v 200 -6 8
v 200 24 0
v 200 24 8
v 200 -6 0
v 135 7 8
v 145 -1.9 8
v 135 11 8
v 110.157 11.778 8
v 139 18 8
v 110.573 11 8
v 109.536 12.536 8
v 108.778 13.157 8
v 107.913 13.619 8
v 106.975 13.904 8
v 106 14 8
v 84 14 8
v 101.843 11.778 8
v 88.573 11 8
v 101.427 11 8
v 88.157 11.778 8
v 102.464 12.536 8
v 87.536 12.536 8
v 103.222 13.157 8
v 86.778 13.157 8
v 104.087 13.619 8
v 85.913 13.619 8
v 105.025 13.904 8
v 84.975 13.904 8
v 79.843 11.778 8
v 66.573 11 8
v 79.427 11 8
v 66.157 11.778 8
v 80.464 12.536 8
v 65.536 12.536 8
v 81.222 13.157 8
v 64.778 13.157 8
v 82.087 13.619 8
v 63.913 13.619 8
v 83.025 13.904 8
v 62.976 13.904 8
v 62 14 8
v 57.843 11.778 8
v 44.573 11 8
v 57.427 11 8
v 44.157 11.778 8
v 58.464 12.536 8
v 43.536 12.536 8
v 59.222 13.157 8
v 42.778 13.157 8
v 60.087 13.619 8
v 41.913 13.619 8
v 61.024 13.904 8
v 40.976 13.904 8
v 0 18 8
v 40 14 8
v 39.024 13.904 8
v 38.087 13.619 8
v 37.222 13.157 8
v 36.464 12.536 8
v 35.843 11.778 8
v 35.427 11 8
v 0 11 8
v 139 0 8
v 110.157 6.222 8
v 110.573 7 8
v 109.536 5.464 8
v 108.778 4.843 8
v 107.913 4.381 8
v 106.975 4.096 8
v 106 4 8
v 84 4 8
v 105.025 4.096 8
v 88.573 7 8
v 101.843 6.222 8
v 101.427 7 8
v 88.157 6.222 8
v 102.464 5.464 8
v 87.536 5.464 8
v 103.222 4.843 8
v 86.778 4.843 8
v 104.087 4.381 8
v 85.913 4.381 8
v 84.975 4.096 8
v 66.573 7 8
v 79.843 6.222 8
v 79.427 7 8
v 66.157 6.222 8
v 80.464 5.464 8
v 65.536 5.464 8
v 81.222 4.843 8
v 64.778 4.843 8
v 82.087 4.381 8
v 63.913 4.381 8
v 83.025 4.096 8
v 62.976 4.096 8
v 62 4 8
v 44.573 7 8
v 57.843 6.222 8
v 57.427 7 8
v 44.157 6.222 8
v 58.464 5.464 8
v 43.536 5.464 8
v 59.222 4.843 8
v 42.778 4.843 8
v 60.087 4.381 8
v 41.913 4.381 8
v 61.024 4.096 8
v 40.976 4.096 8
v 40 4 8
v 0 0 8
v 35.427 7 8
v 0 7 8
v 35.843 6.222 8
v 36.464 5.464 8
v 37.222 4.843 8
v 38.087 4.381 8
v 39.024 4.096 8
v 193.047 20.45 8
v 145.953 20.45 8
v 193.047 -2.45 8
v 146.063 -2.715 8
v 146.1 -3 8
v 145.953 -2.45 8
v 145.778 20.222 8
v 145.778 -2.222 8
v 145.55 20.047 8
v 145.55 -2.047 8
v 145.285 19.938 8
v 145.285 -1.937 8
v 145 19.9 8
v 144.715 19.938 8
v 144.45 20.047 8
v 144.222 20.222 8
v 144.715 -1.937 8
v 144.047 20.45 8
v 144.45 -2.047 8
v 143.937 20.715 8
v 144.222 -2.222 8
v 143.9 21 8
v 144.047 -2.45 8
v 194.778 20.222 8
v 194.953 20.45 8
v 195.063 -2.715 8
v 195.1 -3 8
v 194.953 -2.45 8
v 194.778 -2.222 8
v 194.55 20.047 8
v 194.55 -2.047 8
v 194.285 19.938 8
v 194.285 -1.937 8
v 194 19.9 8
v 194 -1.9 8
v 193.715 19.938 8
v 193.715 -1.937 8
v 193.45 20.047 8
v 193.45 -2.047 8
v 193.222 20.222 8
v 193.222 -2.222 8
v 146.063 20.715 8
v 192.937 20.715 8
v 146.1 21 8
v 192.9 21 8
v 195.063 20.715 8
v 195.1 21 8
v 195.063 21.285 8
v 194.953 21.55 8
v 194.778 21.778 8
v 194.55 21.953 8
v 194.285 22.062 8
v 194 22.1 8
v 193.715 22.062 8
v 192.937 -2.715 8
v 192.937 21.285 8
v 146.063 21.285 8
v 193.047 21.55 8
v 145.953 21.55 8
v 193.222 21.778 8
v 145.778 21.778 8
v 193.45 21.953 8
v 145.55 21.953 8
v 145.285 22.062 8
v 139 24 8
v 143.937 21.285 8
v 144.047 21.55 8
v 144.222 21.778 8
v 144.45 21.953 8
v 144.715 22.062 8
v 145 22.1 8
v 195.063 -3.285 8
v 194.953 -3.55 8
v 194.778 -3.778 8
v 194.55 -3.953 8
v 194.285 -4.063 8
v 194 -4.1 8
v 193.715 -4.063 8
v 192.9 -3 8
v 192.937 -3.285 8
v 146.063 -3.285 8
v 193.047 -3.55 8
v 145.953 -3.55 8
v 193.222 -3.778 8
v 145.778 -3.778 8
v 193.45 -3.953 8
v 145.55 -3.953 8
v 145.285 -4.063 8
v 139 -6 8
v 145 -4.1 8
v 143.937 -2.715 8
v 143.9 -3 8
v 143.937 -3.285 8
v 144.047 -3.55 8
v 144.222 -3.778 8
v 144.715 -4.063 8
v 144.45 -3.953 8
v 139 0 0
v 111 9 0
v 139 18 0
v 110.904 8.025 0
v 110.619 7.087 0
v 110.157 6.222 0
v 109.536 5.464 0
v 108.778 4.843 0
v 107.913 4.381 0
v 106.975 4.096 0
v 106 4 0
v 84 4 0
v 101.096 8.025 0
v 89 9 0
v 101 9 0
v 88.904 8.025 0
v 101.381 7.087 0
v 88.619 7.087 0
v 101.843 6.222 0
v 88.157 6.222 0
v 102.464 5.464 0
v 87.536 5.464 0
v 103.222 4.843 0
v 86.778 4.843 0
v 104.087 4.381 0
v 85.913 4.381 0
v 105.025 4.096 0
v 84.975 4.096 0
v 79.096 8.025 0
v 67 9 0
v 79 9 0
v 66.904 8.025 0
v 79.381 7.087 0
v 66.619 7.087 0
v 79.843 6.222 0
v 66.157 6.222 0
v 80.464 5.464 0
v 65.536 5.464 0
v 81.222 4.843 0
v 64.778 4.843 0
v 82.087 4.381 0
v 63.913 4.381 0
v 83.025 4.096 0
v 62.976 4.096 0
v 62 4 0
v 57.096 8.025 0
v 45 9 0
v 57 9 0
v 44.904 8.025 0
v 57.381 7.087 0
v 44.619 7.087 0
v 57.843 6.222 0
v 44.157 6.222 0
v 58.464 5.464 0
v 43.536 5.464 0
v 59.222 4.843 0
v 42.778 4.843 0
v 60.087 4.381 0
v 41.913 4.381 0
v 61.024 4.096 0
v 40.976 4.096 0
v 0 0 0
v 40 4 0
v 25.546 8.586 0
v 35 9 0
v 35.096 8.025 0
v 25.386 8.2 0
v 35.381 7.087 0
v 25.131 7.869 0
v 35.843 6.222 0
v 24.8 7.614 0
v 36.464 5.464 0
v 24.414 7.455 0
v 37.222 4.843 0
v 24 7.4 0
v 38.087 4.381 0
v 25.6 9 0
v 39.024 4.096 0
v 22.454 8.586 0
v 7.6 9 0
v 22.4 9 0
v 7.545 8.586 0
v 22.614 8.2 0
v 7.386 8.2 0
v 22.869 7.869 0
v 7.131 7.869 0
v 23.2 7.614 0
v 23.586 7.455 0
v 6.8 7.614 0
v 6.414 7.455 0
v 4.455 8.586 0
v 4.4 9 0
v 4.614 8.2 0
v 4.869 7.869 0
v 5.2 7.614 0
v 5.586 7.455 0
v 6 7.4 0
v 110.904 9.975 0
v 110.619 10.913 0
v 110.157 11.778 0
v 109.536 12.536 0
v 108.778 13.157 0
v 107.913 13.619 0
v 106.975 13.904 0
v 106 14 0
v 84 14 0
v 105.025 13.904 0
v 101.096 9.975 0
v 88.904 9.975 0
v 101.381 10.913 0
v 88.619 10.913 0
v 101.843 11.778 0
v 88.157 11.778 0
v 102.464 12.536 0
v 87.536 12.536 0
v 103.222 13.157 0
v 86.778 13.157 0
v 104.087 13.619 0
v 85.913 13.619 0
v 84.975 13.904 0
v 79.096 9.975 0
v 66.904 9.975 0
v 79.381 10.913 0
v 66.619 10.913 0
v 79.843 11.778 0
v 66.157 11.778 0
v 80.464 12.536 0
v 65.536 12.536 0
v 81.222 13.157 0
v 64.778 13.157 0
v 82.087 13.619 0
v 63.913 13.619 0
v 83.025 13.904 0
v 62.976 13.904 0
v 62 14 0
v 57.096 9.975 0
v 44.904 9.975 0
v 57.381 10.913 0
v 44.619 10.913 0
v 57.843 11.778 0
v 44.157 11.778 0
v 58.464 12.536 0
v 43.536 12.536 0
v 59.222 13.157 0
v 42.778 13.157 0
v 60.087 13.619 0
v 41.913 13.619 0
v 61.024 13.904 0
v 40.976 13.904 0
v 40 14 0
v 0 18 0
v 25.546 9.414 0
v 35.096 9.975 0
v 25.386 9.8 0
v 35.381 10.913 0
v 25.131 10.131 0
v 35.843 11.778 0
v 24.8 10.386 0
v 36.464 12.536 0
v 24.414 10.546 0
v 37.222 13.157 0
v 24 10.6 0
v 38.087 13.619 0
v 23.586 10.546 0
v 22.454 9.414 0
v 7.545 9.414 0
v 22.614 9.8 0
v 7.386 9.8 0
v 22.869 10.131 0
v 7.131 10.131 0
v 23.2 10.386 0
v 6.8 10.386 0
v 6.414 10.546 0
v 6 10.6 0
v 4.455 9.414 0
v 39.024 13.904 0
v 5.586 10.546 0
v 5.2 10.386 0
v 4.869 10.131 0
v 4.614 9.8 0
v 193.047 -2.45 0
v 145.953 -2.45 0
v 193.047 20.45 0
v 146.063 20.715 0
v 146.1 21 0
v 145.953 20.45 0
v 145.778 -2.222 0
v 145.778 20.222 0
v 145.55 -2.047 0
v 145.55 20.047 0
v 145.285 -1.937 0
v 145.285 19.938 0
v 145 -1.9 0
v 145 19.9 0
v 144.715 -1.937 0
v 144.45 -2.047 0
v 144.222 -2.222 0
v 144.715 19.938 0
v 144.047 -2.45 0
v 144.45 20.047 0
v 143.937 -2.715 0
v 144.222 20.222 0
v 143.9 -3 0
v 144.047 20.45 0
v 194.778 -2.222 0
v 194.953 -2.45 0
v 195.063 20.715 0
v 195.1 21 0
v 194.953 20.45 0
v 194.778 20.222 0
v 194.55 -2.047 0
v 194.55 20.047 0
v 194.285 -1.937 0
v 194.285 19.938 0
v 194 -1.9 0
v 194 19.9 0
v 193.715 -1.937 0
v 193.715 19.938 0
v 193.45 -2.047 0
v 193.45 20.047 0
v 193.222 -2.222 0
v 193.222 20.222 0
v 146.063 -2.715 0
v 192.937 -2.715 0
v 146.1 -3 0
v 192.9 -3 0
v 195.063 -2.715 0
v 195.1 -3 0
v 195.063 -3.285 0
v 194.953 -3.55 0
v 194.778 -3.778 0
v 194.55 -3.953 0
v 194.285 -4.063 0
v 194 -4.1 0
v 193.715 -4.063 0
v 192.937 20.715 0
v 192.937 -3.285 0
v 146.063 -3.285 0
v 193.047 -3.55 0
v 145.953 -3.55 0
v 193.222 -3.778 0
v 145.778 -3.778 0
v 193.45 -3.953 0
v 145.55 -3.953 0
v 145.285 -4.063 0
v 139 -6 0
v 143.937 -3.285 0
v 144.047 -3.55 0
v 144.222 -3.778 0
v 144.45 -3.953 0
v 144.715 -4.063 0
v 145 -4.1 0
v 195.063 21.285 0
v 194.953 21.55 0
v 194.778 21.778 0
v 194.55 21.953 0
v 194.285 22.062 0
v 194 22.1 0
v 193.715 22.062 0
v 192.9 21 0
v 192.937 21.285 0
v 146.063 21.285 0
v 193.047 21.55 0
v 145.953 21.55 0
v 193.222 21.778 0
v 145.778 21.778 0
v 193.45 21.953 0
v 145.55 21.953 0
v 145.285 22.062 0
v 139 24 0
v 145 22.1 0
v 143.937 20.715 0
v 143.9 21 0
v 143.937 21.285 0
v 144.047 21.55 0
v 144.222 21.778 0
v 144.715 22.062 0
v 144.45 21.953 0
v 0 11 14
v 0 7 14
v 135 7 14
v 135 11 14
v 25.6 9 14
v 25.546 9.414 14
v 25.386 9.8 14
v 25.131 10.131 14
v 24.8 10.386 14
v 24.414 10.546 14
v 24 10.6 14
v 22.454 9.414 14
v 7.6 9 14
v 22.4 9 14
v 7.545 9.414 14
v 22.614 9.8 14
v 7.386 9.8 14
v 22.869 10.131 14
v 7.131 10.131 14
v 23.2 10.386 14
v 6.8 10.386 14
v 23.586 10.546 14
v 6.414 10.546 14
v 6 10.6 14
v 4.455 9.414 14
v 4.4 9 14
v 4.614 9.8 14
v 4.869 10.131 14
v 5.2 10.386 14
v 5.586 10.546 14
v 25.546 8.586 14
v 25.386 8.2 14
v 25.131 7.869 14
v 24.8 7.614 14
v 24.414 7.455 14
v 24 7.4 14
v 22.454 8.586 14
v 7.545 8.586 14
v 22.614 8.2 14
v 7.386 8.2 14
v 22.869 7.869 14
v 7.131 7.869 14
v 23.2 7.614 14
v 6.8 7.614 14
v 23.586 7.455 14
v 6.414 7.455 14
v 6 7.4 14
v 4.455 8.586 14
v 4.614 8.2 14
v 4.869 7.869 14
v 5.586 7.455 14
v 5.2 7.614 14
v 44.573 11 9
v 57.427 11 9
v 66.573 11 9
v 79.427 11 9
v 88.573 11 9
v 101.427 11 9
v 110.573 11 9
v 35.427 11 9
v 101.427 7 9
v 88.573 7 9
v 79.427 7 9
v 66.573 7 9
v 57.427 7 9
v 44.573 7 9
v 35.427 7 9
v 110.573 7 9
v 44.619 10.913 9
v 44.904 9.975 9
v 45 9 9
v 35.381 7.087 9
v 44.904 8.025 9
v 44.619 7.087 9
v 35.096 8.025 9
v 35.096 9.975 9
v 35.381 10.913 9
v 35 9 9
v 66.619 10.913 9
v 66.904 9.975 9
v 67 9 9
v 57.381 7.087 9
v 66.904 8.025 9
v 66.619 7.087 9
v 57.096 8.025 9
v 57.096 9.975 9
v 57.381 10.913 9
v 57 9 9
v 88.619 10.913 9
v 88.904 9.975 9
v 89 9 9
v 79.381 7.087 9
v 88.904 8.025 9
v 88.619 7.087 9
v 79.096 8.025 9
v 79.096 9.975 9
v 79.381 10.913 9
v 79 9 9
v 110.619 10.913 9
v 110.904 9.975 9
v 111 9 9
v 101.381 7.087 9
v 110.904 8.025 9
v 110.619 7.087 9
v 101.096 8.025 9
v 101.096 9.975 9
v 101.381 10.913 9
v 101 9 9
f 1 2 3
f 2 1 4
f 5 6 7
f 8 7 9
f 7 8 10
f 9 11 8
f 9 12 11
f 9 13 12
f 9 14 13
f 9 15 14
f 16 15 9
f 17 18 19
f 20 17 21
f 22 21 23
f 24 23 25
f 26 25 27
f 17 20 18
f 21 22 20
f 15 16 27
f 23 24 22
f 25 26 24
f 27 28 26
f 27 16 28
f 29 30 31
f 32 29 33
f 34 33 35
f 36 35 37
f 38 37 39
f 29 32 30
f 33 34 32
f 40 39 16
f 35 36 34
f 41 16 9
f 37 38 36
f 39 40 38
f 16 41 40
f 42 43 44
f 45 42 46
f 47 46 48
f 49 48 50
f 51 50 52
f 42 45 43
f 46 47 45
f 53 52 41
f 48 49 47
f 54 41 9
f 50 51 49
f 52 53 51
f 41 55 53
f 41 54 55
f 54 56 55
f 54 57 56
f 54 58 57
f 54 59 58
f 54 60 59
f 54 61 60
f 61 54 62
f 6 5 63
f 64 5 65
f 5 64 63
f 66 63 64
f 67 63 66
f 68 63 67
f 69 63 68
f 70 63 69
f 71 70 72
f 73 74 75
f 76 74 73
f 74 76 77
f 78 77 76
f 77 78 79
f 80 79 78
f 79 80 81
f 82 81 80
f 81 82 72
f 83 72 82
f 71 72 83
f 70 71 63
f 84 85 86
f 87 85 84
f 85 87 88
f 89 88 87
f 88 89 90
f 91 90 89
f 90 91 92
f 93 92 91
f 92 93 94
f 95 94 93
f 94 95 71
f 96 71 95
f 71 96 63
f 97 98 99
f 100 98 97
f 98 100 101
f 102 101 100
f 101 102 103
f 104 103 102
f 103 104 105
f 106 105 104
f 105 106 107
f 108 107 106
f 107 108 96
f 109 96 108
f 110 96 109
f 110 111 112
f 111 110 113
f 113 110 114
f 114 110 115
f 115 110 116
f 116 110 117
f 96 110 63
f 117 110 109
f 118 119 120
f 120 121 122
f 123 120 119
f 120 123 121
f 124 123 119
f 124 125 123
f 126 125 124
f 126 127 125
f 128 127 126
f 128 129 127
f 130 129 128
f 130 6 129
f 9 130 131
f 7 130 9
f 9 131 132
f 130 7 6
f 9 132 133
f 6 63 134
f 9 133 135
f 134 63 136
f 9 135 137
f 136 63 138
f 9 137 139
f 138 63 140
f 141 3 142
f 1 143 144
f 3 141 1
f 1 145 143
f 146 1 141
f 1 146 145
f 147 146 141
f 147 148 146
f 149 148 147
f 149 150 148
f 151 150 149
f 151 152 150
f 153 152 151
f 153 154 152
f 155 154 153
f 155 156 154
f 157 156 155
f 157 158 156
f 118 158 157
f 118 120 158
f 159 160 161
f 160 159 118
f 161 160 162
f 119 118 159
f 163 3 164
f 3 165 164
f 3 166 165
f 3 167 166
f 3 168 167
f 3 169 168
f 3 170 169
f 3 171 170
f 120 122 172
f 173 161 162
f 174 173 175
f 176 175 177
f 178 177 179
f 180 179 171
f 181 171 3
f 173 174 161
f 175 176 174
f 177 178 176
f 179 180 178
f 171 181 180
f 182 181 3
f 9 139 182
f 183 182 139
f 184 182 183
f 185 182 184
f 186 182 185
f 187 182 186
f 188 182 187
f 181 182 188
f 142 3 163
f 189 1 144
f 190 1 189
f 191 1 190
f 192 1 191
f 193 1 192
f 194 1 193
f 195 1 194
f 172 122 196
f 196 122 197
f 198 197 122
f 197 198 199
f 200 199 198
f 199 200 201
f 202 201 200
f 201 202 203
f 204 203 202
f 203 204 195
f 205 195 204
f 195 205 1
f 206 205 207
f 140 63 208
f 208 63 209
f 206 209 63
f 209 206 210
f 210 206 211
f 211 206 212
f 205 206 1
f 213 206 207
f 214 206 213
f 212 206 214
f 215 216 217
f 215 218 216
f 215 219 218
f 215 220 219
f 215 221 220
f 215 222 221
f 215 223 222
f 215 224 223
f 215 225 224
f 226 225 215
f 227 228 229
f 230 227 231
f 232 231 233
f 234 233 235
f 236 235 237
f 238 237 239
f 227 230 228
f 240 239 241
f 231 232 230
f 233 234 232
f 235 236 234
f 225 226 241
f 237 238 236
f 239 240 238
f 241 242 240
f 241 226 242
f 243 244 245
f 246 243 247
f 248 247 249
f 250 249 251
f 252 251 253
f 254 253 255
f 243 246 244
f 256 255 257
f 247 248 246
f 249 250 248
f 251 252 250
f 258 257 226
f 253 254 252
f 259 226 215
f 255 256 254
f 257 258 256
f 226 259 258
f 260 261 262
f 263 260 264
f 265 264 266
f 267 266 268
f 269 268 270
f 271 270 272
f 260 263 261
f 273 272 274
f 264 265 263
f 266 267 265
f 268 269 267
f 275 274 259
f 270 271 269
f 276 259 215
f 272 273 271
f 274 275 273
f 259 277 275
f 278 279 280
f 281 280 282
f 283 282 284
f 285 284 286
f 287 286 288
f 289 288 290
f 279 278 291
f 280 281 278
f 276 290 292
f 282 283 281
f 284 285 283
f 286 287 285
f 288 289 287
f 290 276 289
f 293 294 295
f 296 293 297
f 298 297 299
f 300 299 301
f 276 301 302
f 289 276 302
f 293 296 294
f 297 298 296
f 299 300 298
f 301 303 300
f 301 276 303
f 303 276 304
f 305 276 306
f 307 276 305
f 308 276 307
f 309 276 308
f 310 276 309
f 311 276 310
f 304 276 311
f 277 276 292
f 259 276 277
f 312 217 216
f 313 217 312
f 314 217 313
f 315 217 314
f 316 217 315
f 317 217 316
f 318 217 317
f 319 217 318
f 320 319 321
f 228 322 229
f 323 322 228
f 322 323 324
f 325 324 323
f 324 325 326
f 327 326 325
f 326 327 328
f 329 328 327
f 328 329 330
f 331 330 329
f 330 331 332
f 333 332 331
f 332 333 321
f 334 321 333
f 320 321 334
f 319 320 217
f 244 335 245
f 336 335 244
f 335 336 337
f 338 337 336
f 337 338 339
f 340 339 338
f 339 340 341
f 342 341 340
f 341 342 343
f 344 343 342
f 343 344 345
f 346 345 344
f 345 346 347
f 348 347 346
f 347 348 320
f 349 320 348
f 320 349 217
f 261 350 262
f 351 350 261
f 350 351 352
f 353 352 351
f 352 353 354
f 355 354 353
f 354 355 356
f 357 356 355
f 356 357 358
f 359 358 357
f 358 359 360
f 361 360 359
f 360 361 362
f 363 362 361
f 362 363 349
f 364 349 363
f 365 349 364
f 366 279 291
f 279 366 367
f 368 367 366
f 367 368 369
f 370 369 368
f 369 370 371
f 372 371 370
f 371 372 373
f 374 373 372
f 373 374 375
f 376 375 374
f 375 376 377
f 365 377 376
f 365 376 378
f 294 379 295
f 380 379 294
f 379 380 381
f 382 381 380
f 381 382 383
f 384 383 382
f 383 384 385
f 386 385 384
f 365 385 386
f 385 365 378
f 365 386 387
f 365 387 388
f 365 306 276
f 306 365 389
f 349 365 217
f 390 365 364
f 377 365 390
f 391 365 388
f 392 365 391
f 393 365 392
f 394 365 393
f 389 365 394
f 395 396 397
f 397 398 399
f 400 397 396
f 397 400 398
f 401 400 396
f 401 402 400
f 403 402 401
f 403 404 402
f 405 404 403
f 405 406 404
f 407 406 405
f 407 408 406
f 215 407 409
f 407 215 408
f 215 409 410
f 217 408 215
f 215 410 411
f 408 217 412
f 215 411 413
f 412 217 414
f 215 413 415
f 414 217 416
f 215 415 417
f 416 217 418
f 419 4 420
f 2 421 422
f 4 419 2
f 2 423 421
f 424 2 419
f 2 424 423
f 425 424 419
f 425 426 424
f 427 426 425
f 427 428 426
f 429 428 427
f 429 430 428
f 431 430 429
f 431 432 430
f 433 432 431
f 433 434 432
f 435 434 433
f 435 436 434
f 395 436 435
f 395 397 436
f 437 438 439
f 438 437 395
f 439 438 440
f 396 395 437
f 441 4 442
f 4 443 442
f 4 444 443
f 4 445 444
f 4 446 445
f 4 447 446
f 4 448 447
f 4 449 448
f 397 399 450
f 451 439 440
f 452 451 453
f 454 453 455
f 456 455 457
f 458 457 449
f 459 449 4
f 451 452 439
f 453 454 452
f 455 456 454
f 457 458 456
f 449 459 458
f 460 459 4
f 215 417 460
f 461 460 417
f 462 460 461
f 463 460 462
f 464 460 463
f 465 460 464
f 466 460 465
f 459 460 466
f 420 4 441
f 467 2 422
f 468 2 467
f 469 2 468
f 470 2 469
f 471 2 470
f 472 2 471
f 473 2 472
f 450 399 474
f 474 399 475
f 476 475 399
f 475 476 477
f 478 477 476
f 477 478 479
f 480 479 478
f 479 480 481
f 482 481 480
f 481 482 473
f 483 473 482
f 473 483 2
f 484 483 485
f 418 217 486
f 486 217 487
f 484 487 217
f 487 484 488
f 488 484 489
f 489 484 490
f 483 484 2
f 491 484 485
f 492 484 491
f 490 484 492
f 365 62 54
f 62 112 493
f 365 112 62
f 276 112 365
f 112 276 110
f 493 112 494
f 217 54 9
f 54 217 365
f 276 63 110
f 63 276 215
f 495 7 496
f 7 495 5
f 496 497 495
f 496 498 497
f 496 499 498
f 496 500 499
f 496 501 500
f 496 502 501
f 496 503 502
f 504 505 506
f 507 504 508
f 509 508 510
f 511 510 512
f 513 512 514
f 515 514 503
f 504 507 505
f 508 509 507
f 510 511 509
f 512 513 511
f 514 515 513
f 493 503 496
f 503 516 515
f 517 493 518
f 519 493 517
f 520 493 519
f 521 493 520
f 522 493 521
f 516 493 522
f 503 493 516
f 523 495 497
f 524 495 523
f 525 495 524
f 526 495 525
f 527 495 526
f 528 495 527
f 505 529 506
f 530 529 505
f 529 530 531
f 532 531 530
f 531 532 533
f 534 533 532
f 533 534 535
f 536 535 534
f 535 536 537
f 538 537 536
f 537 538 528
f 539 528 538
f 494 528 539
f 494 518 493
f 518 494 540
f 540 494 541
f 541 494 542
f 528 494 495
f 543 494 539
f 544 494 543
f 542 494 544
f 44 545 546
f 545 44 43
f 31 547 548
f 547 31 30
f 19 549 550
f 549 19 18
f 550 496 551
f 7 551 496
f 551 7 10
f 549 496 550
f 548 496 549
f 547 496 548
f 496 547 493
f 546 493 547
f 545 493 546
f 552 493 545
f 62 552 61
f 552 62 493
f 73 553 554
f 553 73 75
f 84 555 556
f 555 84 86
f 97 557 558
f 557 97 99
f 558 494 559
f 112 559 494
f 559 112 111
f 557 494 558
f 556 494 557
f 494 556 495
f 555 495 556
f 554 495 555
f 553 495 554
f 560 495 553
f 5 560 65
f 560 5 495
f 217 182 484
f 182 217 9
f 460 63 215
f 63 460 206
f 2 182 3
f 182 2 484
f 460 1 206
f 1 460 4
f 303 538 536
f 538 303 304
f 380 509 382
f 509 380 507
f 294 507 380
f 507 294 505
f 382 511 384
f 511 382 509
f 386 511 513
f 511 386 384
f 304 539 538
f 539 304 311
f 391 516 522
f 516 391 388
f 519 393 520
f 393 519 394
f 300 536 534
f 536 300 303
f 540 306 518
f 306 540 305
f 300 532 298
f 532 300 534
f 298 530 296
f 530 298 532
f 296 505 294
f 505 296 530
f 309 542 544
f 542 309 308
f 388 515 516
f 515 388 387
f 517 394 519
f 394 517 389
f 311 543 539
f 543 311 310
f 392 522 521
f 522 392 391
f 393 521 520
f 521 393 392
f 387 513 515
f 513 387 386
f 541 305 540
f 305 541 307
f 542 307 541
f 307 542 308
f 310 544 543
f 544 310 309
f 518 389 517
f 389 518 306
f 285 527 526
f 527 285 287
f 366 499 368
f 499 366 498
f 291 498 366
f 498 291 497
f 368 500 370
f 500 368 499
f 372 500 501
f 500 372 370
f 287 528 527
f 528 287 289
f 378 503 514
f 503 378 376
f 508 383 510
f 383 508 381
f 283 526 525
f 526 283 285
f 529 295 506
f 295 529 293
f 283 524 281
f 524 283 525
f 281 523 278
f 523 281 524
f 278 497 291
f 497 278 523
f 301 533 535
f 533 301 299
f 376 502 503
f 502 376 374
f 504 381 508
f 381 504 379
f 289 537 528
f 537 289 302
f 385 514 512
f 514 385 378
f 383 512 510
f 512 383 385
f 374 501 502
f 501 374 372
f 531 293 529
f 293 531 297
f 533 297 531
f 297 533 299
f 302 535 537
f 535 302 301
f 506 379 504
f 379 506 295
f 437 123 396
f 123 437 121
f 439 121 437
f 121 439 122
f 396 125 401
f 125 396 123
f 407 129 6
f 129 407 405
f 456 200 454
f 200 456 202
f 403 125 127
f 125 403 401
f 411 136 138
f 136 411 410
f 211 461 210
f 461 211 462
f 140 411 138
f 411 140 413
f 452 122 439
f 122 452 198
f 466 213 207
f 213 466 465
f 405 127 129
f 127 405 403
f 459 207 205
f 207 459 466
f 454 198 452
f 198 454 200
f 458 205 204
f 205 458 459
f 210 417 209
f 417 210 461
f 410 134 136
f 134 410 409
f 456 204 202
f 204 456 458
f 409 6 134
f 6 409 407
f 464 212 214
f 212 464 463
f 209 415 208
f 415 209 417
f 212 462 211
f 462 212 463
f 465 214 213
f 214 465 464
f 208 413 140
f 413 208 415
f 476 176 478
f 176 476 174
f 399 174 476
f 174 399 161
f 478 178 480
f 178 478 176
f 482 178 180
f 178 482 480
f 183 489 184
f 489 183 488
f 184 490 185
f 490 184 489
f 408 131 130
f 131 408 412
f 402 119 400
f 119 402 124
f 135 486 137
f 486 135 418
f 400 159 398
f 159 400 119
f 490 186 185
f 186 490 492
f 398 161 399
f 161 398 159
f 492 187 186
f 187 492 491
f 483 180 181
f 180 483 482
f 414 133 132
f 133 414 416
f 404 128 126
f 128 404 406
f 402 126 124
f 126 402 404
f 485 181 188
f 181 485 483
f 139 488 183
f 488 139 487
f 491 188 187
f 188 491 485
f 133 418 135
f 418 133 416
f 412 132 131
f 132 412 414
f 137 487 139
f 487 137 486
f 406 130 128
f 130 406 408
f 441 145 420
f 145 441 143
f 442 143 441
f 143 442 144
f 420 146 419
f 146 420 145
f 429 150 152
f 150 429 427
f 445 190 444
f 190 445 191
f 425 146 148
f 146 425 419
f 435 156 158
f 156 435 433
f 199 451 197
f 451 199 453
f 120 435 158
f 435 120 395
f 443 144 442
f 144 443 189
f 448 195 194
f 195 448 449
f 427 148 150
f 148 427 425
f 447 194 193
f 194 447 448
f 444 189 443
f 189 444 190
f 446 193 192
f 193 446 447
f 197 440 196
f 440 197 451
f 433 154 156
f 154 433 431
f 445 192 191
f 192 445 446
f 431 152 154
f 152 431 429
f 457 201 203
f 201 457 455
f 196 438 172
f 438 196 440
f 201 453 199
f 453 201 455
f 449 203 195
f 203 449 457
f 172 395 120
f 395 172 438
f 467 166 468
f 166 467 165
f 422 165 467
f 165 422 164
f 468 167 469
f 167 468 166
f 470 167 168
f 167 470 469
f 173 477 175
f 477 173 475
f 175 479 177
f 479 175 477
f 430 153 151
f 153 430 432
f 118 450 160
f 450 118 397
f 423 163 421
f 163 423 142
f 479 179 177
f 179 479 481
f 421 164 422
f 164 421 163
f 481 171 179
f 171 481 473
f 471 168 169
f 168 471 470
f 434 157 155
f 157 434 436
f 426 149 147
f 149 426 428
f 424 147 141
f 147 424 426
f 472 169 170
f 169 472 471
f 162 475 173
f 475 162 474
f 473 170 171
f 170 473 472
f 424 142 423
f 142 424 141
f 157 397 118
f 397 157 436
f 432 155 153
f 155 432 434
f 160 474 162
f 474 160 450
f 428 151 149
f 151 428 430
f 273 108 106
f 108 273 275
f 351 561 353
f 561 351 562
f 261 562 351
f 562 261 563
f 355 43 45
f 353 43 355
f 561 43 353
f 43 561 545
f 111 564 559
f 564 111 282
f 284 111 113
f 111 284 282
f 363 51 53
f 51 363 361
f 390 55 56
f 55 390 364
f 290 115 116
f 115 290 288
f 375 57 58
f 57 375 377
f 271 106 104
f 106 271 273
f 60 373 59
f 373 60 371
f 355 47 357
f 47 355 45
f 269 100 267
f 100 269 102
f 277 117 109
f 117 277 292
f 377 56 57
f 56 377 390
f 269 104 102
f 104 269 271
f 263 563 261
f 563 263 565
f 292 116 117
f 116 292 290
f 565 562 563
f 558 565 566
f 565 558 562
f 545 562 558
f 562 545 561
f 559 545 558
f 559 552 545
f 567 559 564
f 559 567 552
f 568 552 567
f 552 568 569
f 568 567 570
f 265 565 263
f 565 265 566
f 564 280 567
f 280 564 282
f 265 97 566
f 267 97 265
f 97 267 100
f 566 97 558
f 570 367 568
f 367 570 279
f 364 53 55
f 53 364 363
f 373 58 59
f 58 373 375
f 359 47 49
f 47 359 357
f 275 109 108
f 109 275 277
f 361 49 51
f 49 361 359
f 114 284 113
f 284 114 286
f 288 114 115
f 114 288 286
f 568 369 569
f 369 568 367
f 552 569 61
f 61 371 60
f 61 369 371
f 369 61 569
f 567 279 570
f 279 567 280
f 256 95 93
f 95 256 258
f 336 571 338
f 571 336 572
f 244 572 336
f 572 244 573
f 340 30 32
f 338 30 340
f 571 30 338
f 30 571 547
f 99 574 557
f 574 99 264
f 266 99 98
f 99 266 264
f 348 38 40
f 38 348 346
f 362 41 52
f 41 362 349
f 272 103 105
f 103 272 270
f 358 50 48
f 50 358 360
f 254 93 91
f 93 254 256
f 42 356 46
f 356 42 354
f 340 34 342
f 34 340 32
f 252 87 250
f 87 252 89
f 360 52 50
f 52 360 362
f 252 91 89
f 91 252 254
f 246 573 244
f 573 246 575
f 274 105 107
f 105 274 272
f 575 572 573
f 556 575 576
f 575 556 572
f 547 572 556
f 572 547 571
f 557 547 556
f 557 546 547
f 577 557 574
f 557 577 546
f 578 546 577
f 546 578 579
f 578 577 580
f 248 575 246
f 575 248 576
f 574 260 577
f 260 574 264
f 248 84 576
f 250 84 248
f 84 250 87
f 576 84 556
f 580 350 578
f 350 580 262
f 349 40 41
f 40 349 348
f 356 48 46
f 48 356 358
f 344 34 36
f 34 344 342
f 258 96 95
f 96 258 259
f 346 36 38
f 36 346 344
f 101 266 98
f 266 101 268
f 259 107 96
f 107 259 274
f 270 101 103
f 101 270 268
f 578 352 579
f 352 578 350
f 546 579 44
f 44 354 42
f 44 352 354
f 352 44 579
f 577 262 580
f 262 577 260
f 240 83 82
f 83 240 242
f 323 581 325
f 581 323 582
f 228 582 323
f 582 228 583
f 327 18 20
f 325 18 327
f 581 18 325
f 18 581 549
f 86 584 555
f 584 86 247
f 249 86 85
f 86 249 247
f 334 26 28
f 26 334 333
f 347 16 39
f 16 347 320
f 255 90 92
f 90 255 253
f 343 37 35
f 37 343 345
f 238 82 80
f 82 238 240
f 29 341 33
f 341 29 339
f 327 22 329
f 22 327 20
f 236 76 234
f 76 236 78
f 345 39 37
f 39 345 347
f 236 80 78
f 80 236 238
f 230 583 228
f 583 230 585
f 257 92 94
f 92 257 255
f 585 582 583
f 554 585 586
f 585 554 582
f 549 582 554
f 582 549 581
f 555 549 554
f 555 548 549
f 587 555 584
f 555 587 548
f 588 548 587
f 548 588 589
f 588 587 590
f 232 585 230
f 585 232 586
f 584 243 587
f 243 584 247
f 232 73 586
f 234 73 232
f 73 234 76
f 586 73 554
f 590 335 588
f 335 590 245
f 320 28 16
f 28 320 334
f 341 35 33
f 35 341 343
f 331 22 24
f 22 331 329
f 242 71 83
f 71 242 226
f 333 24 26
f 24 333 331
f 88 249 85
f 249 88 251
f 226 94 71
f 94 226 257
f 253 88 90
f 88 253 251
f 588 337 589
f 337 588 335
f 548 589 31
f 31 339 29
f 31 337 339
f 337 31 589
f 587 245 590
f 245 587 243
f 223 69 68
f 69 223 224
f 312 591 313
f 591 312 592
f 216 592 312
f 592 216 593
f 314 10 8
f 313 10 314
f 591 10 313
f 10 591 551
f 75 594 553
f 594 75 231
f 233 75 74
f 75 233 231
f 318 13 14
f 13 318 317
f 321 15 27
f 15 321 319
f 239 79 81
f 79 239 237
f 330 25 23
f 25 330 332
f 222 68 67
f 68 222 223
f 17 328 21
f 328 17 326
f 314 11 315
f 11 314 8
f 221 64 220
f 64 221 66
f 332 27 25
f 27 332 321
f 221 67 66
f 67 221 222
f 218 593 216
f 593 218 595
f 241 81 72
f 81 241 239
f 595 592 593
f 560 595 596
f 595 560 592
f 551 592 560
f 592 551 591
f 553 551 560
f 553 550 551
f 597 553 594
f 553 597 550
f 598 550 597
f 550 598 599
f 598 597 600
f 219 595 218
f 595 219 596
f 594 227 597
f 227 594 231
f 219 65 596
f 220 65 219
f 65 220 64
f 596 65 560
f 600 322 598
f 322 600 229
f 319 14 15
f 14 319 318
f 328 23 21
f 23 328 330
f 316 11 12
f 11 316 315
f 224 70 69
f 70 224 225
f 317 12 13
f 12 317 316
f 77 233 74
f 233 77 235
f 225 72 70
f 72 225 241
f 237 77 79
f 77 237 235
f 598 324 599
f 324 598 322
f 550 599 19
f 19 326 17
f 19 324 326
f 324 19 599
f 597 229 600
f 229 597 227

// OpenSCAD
// file: config.scad
// SportCam — shared parametric dimensions (mm).
// Every part file includes this; tweak here, re-render, everything stays consistent.

$fn = 96;
clr = 0.25;                    // general printed-fit clearance per side

// ---- pan stage -------------------------------------------------------------
base_d        = 150;           // base housing outer diameter
base_h        = 62;            // base housing height
base_wall     = 3;

ls_size       = 76.2;          // 3" lazy-susan square plate
ls_bolt       = 66;            // bolt spacing (square)
ls_hole_d     = 5;             // M5-ish mounting holes
ls_thick      = 8;             // bearing stack height

sr_body_d     = 22.5;          // slip ring body (Adafruit 736 class)
sr_flange_d   = 44.5;          // stationary flange diameter
sr_flange_t   = 2.5;
sr_hole_space = 33;            // two flange screw holes, M3
sr_wire_d     = 14;            // wire bundle pass-through

nema_face     = 42.3;          // NEMA17
nema_bolt     = 31;            // M3 square pattern
nema_boss_d   = 22.5;
nema_shaft_d  = 5;

// ---- belt drive ------------------------------------------------------------
gt2_pitch       = 2.0;
ring_teeth      = 120;         // printed ring pulley (6:1 with 20T motor pulley)
ring_pitch_r    = ring_teeth * gt2_pitch / (2 * PI);   // ≈ 38.2
ring_id         = 60;          // clears the 44.5 slip-ring flange with margin
pulley_h        = 8;           // belt is 6 mm wide
flange_lip      = 1.5;

// ---- rotating platform -----------------------------------------------------
plat_d        = 160;
plat_t        = 5;
plat_bolt_circle = 70;         // M3 bosses meeting the lazy-susan top plate

pi_l = 85; pi_w = 56;          // Raspberry Pi 5
pi_hole_dx = 58; pi_hole_dy = 49;
pi_hole_off = 3.5;             // hole inset from board corner
pi_standoff_h = 6;

// ---- tilt ------------------------------------------------------------------
servo_l = 40.5; servo_w = 20.2; servo_h = 38.5;   // DS3225 body
servo_tab_l = 54.5;            // over mounting tabs
servo_hole_dx = 49.5; servo_hole_dy = 10;         // 4 × M4 tab holes
servo_axis_off = 9.9;          // spline axis from body front face

tilt_bearing_od = 18; tilt_bearing_w = 4;         // 6701ZZ
tilt_shaft_d = 12;
tower_h = 90;                  // tilt-axis height above platform
tower_w = 30; tower_t = 12;
tower_gap = 90;                // clear width between the two uprights

// ---- camera cradle ---------------------------------------------------------
lens_d = 33;                   // Arducam zoom-lens barrel — MEASURE YOURS
cam_board_w = 25;              // IMX219 board width behind lens
horn_d = 21;                   // DS3225 round metal horn
horn_screw_circle = 14;        // 4 × M3 on the horn
cradle_w = 60;

// ---- UWB anchor arm --------------------------------------------------------
arm_len = 200;                 // baseline = 2 × arm_len = 400
arm_w = 18; arm_t = 8;
uwb_l = 55; uwb_w = 30;        // ESP32-UWB board
uwb_hole_dx = 49; uwb_hole_dy = 24;               // corner holes — MEASURE YOURS

// ---- wearable pod ----------------------------------------------------------
pod_inner_l = 58; pod_inner_w = 33; pod_inner_h = 22;  // board + LiPo + TP4056
pod_wall = 2.0;
strap_w = 26;                  // elastic armband width
// main file
// UWB anchor arm: 200 mm, bolts flat under the platform edge, board pocket
// at the far end (antenna outboard, clear of the platform).
// Print flat, 4+ perimeters.
include <config.scad>

rib_h = 6;

module anchor_arm() {
    difference() {
        union() {
            cube([arm_len, arm_w, arm_t]);
            // stiffening rib
            translate([0, arm_w / 2 - 2, arm_t]) cube([arm_len - uwb_l - 10, 4, rib_h]);
            // board platform at the tip
            translate([arm_len - uwb_l - 6, -(uwb_w - arm_w) / 2, 0])
                cube([uwb_l + 6, uwb_w, arm_t]);
        }
        // platform-side bolt holes (matches arm_sockets in rotating_platform.scad)
        for (x = [6, 24])
            translate([x, arm_w / 2, -1]) cylinder(d = 3.2, h = arm_t + rib_h + 2, $fn = 24);
        // board standoff holes — M2.5, MEASURE your board's hole pattern
        translate([arm_len - uwb_l / 2 - 3, arm_w / 2, 0])
            for (x = [-1, 1], y = [-1, 1])
                translate([x * uwb_hole_dx / 2, y * uwb_hole_dy / 2, -1])
                    cylinder(d = 2.2, h = arm_t + 2, $fn = 24);
        // weight relief
        for (x = [40:22:arm_len - uwb_l - 30])
            translate([x, arm_w / 2, -1]) cylinder(d = 10, h = arm_t + 2, $fn = 32);
    }
}

anchor_arm();
